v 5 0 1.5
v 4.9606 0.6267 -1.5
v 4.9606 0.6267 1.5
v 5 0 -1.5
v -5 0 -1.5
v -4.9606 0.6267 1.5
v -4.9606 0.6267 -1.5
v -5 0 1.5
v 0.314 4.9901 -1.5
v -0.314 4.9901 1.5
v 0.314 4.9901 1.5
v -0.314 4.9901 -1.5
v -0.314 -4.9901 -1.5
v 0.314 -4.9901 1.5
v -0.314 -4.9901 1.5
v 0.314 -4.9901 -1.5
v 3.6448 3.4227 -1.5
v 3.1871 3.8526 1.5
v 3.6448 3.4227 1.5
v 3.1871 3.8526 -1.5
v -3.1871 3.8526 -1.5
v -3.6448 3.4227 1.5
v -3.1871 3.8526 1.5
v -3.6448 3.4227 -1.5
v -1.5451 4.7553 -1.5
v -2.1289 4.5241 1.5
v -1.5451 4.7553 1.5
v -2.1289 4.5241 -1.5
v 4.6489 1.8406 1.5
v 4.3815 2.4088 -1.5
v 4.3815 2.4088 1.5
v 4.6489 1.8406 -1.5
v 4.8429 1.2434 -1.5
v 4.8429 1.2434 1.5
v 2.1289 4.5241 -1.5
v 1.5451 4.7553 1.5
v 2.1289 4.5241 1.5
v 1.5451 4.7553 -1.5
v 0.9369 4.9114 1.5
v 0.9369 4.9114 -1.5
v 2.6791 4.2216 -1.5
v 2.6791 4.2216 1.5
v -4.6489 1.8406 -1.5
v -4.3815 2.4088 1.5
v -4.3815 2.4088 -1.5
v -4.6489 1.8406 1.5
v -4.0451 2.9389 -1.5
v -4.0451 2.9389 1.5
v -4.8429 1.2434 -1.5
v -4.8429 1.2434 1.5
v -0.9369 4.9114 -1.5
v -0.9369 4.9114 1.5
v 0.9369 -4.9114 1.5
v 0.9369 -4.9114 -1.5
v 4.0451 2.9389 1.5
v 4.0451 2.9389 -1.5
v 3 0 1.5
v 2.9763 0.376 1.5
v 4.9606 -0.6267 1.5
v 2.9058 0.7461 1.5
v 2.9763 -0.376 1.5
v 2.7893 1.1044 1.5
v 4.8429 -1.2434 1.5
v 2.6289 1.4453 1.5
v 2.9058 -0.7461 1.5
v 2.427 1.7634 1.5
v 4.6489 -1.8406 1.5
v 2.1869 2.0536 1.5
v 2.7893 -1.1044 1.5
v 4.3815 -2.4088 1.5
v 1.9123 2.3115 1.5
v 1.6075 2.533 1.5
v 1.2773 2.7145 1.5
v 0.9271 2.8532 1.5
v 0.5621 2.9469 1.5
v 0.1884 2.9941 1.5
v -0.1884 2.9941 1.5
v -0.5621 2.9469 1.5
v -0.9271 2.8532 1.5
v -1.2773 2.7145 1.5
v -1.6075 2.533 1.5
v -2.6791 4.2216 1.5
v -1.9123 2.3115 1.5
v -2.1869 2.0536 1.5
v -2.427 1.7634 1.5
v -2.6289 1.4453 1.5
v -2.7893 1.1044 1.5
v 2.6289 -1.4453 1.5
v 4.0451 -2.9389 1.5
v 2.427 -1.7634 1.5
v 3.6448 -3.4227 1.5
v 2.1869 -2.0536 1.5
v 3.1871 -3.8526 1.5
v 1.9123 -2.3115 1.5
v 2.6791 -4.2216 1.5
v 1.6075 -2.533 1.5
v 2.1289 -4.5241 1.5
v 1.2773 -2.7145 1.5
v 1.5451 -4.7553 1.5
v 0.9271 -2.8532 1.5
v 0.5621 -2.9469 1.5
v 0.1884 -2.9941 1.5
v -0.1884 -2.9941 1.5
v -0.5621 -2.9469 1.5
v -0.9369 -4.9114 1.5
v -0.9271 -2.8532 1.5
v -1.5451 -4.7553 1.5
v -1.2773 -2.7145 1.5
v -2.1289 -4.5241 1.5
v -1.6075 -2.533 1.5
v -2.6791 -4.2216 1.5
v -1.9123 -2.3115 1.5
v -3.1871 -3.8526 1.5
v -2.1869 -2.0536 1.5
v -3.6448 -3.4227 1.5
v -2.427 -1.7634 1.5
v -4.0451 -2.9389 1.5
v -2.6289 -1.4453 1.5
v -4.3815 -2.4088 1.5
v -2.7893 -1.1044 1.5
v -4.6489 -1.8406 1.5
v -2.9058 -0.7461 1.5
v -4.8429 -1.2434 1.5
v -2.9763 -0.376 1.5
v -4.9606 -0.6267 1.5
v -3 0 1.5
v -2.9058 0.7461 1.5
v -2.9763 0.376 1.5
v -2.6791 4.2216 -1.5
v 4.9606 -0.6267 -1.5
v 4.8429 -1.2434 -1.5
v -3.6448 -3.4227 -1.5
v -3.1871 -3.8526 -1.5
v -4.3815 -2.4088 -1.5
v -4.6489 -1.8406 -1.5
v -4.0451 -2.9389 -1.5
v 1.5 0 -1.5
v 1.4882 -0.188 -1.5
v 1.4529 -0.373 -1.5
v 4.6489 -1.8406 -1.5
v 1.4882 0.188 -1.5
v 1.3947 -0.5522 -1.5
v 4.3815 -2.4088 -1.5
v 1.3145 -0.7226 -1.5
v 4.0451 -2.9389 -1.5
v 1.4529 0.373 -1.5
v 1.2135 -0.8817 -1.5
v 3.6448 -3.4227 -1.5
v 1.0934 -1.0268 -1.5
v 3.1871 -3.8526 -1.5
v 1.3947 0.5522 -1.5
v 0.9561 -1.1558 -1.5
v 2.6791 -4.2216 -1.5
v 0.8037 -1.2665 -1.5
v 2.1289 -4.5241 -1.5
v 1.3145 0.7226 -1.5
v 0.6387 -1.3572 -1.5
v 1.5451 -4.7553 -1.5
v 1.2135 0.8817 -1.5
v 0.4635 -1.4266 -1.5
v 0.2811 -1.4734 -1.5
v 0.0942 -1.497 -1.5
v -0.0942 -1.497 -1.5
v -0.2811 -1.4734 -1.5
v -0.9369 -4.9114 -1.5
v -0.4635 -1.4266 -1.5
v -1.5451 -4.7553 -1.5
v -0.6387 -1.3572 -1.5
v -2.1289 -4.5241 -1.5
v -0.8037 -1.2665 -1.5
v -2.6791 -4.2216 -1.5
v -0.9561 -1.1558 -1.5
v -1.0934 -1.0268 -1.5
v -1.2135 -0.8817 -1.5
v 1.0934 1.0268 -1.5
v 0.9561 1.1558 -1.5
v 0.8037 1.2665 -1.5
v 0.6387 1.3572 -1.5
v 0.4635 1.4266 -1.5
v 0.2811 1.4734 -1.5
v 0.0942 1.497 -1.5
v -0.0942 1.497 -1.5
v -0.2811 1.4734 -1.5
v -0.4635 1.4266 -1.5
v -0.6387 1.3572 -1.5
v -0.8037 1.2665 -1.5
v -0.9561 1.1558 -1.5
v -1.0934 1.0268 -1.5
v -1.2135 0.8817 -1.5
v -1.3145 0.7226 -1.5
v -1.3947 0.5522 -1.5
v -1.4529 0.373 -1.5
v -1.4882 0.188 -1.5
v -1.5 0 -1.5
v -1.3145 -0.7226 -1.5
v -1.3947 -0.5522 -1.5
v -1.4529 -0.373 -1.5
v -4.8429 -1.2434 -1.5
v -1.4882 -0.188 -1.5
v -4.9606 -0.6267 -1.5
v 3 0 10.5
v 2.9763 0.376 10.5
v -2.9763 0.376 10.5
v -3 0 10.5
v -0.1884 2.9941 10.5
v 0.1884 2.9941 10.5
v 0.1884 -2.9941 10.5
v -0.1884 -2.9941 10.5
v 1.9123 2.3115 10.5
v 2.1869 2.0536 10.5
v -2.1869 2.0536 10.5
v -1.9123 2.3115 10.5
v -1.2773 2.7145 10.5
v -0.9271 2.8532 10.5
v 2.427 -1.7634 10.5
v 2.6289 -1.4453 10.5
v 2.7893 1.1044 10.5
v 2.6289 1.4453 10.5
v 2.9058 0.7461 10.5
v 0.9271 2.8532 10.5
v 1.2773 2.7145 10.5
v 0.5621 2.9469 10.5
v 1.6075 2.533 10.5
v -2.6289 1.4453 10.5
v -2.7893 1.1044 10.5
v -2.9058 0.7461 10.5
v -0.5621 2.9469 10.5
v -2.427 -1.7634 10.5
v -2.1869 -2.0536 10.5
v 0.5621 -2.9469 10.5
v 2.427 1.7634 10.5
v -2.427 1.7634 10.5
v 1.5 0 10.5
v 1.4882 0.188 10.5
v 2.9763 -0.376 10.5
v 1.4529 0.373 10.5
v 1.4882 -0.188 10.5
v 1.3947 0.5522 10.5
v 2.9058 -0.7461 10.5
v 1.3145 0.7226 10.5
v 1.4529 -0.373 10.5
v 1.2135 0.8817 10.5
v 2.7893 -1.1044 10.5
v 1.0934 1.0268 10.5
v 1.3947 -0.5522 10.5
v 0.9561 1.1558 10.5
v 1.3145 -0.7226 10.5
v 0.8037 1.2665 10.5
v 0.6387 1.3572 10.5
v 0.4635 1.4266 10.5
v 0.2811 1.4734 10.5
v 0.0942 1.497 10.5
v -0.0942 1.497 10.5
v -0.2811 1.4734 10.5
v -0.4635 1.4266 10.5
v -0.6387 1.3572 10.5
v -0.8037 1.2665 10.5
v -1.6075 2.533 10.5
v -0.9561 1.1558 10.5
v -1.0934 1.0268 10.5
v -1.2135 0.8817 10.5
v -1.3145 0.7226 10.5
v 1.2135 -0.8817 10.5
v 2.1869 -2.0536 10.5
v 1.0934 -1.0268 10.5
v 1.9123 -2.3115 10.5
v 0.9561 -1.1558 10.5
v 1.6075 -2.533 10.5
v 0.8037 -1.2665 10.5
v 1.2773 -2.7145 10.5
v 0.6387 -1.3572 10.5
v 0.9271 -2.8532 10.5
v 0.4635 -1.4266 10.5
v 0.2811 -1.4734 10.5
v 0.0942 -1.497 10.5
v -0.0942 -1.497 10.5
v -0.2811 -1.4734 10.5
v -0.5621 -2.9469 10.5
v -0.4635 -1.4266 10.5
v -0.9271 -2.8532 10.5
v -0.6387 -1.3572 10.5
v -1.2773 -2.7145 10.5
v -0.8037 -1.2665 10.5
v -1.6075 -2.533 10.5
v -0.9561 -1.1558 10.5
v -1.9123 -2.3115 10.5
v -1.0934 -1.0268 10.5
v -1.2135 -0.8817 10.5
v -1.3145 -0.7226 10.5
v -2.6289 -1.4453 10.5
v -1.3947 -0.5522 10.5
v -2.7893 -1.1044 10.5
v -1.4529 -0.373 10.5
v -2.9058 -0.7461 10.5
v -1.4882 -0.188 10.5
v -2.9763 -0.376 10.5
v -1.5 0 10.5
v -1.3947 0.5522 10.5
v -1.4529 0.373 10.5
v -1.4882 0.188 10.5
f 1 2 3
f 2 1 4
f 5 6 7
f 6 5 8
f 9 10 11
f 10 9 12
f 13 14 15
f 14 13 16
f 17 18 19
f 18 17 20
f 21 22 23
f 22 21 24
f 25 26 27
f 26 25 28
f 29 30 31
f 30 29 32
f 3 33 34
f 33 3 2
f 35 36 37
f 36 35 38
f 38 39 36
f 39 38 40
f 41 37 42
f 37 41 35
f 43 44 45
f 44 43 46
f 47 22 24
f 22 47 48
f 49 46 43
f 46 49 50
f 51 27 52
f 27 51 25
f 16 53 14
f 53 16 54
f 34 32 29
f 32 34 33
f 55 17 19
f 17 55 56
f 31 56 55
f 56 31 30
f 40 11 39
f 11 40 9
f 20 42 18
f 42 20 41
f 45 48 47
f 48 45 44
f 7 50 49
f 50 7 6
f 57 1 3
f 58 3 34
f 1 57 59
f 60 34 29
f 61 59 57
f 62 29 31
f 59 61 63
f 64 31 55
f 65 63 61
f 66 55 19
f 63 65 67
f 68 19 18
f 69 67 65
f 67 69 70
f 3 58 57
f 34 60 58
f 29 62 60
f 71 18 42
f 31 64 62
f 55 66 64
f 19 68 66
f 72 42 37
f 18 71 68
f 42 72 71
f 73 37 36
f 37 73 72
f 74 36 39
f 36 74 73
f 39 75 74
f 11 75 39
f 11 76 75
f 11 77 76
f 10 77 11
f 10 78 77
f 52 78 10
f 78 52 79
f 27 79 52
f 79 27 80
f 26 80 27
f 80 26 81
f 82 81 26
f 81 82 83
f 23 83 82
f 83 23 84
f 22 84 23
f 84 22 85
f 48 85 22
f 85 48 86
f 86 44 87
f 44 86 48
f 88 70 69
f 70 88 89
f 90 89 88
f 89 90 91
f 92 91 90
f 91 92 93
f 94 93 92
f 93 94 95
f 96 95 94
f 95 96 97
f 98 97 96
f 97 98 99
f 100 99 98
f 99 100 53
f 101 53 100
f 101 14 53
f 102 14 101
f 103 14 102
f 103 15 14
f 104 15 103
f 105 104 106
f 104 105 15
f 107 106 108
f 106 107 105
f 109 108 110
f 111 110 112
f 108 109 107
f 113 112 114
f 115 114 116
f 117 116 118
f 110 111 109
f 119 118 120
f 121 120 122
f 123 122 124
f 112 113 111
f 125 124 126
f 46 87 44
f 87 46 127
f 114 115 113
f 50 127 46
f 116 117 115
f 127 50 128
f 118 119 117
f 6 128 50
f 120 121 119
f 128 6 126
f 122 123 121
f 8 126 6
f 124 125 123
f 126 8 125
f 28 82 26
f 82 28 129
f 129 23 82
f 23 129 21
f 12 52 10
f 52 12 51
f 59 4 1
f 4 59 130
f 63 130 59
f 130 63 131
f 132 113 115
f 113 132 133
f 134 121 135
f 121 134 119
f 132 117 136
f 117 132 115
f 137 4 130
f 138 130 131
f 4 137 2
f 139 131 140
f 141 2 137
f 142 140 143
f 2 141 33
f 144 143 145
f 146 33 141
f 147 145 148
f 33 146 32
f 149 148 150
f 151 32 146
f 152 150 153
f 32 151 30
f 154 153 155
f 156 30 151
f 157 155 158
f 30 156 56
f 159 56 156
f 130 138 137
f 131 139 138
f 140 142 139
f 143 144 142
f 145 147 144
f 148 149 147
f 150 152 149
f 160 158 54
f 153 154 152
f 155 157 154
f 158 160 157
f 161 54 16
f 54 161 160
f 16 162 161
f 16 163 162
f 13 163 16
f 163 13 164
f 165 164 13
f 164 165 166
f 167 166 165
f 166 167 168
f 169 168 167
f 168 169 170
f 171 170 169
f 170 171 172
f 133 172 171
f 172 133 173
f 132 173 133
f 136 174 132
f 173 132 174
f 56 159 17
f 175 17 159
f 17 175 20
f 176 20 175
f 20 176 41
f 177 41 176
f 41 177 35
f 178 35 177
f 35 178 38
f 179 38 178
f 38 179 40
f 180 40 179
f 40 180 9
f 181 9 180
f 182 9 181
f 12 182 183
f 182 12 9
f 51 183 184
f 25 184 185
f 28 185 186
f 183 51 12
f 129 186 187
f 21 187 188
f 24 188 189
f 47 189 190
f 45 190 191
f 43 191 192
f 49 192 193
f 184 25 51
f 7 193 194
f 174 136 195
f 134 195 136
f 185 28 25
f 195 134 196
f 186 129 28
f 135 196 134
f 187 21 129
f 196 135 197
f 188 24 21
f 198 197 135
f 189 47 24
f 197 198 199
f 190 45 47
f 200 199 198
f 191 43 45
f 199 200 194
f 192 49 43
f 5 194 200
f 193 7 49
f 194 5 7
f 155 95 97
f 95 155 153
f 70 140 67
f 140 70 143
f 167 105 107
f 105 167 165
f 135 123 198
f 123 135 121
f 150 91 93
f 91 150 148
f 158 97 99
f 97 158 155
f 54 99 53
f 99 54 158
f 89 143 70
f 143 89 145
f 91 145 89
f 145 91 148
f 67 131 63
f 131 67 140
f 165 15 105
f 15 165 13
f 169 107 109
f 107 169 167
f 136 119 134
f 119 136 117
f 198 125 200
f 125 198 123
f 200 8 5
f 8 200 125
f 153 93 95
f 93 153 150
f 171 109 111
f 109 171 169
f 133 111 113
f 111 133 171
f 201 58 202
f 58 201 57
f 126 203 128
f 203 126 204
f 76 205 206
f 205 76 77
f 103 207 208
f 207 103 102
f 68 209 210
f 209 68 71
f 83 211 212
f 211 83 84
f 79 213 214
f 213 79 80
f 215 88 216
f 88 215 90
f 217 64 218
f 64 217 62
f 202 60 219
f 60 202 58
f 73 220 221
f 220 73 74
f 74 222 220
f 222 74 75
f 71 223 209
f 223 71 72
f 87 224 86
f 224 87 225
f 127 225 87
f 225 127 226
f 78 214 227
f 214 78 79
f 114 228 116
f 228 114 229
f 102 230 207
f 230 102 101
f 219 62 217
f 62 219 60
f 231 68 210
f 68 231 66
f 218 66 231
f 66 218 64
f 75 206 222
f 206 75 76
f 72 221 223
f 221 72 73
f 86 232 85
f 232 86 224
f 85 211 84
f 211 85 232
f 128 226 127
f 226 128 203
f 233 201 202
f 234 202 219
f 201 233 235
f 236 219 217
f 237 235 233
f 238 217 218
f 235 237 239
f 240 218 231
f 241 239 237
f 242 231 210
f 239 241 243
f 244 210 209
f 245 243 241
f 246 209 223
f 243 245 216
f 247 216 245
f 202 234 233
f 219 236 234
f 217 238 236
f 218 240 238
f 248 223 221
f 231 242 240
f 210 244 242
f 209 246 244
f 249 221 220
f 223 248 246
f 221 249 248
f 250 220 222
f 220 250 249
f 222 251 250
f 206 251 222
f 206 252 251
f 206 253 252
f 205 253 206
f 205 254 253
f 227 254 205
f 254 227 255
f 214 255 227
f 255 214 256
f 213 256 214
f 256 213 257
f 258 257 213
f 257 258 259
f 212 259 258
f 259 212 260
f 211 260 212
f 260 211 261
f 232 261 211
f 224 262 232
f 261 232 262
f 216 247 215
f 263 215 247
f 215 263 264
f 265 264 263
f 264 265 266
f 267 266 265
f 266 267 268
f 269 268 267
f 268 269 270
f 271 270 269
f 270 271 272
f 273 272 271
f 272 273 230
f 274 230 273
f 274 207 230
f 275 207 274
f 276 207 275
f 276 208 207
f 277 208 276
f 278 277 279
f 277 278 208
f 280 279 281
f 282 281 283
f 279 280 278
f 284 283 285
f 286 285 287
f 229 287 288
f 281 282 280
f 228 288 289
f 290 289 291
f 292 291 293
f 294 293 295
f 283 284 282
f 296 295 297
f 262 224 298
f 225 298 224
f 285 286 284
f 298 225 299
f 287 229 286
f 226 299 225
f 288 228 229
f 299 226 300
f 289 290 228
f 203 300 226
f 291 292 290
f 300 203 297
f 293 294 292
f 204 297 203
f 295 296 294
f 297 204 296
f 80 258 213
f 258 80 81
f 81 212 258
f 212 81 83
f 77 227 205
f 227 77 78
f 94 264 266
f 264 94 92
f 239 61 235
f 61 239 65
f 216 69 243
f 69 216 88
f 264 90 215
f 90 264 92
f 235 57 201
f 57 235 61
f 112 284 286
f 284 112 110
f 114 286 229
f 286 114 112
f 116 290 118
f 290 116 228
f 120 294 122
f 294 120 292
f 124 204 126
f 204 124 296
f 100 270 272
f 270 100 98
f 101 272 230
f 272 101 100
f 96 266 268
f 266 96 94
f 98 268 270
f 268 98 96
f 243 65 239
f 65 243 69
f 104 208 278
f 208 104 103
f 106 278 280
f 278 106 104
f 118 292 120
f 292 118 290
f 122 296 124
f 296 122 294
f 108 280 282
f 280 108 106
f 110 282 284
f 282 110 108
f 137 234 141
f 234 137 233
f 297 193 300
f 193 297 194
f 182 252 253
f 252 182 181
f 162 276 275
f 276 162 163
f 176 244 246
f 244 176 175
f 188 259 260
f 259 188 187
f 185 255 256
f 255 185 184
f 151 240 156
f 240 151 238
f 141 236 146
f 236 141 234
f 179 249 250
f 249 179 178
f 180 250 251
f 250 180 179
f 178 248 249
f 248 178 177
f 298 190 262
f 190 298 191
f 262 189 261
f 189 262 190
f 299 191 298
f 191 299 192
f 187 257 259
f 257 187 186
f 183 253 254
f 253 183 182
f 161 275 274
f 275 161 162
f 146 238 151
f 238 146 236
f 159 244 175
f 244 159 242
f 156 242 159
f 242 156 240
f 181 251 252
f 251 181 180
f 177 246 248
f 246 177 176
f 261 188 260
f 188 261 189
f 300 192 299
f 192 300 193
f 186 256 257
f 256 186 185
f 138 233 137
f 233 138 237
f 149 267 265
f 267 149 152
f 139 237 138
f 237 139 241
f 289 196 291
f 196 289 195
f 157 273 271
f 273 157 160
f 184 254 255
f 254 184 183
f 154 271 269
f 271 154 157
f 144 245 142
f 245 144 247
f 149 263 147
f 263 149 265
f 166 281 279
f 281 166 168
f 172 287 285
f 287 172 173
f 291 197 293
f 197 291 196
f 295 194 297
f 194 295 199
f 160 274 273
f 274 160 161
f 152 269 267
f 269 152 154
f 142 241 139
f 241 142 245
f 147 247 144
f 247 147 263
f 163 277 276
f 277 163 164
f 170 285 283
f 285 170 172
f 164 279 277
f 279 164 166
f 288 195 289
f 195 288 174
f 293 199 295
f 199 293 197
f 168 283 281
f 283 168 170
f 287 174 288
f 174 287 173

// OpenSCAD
$fn = 50;


difference() {
	union() {
		translate(v = [0, 0, -1.5000000000]) {
			rotate(a = [0, 0, 0]) {
				cylinder(h = 3, r = 5.0000000000);
			}
		}
		translate(v = [0, 0, -1.5000000000]) {
			rotate(a = [0, 0, 0]) {
				cylinder(h = 12, r = 3.0000000000);
			}
		}
	}
	union() {
		translate(v = [0, 0, -125.0000000000]) {
			rotate(a = [0, 0, 0]) {
				cylinder(h = 250, r = 1.5000000000);
			}
		}
	}
}
